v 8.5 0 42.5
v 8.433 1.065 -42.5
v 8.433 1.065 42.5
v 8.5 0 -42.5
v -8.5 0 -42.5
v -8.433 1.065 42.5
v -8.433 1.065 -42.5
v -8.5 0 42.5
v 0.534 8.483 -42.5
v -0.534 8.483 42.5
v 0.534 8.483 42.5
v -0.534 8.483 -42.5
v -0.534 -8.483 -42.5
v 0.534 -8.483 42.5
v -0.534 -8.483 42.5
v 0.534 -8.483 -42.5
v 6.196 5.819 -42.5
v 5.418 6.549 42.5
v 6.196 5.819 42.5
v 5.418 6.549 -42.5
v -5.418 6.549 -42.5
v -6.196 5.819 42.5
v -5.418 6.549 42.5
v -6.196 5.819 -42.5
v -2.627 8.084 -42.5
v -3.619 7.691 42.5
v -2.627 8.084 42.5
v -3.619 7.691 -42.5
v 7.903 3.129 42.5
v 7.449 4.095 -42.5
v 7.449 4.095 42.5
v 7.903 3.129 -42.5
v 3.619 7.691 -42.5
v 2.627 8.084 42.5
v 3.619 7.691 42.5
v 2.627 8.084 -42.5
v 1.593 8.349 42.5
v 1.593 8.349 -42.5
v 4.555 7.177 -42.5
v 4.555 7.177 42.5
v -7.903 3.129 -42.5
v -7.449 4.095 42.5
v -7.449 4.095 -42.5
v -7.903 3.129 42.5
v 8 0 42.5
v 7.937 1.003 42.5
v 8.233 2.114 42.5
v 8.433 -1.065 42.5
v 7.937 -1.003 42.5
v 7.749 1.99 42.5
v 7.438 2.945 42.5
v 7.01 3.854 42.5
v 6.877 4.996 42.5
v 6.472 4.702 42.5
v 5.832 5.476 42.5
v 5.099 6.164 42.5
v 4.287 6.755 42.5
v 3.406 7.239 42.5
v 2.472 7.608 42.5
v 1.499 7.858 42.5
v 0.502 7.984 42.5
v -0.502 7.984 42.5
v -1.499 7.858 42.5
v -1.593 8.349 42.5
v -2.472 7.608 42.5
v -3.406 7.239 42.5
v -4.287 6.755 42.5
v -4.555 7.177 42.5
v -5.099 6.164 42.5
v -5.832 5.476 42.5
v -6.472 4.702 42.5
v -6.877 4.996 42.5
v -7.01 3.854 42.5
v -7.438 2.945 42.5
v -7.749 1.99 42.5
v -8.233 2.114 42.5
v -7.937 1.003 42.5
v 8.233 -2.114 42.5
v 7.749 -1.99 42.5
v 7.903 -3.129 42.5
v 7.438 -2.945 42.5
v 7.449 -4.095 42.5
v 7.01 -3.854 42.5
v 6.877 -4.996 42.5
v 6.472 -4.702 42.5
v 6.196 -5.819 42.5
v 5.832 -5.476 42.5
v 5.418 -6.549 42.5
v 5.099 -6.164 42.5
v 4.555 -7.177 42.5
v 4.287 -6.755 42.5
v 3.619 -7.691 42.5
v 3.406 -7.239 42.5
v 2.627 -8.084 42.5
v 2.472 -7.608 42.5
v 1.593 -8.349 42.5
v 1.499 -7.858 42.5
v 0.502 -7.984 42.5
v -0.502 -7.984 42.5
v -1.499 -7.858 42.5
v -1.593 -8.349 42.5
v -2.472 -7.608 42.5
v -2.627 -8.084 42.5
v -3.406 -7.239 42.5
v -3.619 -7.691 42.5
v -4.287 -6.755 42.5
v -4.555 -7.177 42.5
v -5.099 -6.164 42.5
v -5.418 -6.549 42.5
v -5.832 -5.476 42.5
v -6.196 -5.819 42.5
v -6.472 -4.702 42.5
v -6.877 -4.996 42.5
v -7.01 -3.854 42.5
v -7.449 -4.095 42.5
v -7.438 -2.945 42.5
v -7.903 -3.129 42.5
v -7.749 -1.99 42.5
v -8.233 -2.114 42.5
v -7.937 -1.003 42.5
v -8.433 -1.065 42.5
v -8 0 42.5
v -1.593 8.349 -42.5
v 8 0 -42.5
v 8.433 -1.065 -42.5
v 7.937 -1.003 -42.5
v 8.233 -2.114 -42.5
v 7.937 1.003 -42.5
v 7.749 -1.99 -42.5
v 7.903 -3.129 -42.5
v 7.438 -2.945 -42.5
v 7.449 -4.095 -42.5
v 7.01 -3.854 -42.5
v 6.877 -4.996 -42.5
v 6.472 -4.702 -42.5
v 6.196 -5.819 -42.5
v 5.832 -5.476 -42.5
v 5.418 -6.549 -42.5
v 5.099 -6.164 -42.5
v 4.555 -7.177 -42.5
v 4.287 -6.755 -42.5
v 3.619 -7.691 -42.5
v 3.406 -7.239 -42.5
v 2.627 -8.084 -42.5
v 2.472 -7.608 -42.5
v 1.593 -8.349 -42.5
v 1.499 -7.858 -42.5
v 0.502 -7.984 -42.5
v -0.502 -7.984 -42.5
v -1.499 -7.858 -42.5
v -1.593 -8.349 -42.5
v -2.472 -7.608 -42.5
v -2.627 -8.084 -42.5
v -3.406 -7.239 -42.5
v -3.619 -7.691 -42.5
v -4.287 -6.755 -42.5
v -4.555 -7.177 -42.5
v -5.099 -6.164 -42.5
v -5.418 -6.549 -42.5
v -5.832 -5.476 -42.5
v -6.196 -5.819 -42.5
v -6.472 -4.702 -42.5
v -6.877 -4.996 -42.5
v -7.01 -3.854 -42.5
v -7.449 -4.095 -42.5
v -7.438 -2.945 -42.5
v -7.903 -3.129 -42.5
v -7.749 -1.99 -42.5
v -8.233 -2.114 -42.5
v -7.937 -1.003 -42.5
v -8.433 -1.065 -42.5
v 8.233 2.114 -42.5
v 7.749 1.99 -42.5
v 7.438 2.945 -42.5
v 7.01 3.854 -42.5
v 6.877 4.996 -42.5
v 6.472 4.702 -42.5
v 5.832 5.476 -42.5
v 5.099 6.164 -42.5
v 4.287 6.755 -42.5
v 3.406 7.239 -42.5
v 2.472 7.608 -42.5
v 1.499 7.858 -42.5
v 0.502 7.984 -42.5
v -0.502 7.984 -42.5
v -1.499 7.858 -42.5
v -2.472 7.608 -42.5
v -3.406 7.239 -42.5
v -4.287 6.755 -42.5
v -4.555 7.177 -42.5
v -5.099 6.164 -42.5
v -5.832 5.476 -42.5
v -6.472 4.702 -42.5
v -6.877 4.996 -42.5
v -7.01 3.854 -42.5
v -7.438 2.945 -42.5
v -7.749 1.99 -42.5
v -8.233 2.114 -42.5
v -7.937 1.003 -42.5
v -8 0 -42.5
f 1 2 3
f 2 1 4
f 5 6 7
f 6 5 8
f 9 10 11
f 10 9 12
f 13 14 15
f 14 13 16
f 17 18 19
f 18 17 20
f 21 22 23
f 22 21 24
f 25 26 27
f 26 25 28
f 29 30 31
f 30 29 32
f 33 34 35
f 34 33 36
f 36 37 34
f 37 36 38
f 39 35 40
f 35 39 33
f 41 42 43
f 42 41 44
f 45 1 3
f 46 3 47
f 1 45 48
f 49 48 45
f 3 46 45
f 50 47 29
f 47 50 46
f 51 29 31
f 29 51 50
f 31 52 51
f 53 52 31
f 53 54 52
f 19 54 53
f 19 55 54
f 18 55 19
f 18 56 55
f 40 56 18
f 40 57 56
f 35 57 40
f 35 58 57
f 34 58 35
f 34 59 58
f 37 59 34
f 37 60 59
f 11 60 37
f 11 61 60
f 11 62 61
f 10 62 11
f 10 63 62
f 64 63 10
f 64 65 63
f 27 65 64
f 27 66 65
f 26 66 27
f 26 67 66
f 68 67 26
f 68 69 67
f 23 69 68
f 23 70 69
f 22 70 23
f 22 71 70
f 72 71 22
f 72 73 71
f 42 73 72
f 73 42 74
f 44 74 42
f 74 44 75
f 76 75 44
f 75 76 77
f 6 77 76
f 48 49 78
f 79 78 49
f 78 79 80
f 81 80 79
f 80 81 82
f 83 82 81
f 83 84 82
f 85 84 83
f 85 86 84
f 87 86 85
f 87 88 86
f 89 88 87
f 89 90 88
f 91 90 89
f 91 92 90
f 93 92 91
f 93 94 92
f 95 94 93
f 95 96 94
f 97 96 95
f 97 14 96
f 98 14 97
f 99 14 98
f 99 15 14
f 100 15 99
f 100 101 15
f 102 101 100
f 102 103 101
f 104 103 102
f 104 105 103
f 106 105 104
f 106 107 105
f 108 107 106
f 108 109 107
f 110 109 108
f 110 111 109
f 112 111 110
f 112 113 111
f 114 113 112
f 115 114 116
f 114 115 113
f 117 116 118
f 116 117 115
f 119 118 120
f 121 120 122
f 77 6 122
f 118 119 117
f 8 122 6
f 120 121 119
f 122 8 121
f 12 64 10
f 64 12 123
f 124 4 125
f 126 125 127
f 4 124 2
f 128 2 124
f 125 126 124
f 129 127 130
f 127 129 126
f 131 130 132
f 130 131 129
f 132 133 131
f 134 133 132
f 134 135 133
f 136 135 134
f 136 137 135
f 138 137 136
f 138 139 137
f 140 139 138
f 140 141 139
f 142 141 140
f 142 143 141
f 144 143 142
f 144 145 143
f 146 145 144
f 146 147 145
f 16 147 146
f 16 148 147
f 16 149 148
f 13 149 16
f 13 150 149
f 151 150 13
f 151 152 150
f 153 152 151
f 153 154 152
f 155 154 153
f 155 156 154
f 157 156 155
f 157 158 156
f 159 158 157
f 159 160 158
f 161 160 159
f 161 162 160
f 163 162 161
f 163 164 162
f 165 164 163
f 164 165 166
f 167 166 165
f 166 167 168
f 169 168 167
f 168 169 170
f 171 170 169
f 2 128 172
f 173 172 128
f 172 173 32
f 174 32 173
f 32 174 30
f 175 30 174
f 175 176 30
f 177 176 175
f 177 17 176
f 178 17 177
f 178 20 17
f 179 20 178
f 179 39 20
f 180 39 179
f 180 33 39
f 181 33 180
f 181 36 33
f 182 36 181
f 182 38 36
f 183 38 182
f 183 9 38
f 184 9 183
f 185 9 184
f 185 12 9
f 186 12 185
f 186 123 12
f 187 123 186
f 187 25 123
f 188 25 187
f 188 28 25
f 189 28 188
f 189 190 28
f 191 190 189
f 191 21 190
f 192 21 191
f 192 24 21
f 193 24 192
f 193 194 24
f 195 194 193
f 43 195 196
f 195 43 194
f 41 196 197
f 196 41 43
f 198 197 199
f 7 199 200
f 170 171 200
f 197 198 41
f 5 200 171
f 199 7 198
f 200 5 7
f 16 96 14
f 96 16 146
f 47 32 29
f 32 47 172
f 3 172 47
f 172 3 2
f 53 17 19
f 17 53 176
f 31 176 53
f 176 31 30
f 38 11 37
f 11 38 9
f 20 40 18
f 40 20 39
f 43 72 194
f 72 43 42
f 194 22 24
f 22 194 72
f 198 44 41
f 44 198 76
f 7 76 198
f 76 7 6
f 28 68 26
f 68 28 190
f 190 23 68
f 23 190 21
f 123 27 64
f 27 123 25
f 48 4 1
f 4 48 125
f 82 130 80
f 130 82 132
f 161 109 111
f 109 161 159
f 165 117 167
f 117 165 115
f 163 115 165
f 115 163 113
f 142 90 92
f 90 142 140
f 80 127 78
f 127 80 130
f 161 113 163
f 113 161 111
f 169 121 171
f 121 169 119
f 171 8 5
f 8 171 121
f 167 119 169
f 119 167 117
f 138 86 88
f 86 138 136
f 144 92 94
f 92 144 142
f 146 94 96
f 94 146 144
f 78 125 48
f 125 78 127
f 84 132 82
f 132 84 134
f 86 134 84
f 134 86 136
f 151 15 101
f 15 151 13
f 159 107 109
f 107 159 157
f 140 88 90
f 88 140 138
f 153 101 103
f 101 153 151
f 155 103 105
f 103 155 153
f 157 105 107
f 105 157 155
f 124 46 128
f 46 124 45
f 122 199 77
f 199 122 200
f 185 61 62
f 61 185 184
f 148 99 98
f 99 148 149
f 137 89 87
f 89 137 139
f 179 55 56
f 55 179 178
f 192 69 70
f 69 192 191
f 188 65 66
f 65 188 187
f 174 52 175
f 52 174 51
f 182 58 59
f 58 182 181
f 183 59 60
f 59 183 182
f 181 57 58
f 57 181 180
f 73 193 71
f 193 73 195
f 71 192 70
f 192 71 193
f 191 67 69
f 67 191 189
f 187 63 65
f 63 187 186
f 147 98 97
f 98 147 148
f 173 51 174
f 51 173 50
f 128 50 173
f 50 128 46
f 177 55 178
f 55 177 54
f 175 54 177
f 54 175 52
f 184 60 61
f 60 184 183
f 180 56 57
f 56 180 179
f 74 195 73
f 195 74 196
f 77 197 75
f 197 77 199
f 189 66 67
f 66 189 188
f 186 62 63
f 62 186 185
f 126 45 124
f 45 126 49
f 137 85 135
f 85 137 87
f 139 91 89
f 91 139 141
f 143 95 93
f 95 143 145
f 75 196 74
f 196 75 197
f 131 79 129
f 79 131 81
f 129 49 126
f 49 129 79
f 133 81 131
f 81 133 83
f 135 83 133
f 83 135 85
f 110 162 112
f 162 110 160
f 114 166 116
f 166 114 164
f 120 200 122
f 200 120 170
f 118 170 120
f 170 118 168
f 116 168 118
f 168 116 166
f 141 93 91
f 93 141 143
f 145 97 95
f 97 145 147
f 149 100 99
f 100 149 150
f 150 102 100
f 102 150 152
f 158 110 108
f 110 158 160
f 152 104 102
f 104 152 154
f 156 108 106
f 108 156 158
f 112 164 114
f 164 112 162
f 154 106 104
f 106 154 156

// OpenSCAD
$fn = 50;


difference() {
	union() {
		translate(v = [0, 0, -42.5000000000]) {
			cylinder(h = 85, r = 8.5000000000);
		}
	}
	union() {
		translate(v = [0, 0, -100.0000000000]) {
			cylinder(h = 200, r = 8);
		}
	}
}
